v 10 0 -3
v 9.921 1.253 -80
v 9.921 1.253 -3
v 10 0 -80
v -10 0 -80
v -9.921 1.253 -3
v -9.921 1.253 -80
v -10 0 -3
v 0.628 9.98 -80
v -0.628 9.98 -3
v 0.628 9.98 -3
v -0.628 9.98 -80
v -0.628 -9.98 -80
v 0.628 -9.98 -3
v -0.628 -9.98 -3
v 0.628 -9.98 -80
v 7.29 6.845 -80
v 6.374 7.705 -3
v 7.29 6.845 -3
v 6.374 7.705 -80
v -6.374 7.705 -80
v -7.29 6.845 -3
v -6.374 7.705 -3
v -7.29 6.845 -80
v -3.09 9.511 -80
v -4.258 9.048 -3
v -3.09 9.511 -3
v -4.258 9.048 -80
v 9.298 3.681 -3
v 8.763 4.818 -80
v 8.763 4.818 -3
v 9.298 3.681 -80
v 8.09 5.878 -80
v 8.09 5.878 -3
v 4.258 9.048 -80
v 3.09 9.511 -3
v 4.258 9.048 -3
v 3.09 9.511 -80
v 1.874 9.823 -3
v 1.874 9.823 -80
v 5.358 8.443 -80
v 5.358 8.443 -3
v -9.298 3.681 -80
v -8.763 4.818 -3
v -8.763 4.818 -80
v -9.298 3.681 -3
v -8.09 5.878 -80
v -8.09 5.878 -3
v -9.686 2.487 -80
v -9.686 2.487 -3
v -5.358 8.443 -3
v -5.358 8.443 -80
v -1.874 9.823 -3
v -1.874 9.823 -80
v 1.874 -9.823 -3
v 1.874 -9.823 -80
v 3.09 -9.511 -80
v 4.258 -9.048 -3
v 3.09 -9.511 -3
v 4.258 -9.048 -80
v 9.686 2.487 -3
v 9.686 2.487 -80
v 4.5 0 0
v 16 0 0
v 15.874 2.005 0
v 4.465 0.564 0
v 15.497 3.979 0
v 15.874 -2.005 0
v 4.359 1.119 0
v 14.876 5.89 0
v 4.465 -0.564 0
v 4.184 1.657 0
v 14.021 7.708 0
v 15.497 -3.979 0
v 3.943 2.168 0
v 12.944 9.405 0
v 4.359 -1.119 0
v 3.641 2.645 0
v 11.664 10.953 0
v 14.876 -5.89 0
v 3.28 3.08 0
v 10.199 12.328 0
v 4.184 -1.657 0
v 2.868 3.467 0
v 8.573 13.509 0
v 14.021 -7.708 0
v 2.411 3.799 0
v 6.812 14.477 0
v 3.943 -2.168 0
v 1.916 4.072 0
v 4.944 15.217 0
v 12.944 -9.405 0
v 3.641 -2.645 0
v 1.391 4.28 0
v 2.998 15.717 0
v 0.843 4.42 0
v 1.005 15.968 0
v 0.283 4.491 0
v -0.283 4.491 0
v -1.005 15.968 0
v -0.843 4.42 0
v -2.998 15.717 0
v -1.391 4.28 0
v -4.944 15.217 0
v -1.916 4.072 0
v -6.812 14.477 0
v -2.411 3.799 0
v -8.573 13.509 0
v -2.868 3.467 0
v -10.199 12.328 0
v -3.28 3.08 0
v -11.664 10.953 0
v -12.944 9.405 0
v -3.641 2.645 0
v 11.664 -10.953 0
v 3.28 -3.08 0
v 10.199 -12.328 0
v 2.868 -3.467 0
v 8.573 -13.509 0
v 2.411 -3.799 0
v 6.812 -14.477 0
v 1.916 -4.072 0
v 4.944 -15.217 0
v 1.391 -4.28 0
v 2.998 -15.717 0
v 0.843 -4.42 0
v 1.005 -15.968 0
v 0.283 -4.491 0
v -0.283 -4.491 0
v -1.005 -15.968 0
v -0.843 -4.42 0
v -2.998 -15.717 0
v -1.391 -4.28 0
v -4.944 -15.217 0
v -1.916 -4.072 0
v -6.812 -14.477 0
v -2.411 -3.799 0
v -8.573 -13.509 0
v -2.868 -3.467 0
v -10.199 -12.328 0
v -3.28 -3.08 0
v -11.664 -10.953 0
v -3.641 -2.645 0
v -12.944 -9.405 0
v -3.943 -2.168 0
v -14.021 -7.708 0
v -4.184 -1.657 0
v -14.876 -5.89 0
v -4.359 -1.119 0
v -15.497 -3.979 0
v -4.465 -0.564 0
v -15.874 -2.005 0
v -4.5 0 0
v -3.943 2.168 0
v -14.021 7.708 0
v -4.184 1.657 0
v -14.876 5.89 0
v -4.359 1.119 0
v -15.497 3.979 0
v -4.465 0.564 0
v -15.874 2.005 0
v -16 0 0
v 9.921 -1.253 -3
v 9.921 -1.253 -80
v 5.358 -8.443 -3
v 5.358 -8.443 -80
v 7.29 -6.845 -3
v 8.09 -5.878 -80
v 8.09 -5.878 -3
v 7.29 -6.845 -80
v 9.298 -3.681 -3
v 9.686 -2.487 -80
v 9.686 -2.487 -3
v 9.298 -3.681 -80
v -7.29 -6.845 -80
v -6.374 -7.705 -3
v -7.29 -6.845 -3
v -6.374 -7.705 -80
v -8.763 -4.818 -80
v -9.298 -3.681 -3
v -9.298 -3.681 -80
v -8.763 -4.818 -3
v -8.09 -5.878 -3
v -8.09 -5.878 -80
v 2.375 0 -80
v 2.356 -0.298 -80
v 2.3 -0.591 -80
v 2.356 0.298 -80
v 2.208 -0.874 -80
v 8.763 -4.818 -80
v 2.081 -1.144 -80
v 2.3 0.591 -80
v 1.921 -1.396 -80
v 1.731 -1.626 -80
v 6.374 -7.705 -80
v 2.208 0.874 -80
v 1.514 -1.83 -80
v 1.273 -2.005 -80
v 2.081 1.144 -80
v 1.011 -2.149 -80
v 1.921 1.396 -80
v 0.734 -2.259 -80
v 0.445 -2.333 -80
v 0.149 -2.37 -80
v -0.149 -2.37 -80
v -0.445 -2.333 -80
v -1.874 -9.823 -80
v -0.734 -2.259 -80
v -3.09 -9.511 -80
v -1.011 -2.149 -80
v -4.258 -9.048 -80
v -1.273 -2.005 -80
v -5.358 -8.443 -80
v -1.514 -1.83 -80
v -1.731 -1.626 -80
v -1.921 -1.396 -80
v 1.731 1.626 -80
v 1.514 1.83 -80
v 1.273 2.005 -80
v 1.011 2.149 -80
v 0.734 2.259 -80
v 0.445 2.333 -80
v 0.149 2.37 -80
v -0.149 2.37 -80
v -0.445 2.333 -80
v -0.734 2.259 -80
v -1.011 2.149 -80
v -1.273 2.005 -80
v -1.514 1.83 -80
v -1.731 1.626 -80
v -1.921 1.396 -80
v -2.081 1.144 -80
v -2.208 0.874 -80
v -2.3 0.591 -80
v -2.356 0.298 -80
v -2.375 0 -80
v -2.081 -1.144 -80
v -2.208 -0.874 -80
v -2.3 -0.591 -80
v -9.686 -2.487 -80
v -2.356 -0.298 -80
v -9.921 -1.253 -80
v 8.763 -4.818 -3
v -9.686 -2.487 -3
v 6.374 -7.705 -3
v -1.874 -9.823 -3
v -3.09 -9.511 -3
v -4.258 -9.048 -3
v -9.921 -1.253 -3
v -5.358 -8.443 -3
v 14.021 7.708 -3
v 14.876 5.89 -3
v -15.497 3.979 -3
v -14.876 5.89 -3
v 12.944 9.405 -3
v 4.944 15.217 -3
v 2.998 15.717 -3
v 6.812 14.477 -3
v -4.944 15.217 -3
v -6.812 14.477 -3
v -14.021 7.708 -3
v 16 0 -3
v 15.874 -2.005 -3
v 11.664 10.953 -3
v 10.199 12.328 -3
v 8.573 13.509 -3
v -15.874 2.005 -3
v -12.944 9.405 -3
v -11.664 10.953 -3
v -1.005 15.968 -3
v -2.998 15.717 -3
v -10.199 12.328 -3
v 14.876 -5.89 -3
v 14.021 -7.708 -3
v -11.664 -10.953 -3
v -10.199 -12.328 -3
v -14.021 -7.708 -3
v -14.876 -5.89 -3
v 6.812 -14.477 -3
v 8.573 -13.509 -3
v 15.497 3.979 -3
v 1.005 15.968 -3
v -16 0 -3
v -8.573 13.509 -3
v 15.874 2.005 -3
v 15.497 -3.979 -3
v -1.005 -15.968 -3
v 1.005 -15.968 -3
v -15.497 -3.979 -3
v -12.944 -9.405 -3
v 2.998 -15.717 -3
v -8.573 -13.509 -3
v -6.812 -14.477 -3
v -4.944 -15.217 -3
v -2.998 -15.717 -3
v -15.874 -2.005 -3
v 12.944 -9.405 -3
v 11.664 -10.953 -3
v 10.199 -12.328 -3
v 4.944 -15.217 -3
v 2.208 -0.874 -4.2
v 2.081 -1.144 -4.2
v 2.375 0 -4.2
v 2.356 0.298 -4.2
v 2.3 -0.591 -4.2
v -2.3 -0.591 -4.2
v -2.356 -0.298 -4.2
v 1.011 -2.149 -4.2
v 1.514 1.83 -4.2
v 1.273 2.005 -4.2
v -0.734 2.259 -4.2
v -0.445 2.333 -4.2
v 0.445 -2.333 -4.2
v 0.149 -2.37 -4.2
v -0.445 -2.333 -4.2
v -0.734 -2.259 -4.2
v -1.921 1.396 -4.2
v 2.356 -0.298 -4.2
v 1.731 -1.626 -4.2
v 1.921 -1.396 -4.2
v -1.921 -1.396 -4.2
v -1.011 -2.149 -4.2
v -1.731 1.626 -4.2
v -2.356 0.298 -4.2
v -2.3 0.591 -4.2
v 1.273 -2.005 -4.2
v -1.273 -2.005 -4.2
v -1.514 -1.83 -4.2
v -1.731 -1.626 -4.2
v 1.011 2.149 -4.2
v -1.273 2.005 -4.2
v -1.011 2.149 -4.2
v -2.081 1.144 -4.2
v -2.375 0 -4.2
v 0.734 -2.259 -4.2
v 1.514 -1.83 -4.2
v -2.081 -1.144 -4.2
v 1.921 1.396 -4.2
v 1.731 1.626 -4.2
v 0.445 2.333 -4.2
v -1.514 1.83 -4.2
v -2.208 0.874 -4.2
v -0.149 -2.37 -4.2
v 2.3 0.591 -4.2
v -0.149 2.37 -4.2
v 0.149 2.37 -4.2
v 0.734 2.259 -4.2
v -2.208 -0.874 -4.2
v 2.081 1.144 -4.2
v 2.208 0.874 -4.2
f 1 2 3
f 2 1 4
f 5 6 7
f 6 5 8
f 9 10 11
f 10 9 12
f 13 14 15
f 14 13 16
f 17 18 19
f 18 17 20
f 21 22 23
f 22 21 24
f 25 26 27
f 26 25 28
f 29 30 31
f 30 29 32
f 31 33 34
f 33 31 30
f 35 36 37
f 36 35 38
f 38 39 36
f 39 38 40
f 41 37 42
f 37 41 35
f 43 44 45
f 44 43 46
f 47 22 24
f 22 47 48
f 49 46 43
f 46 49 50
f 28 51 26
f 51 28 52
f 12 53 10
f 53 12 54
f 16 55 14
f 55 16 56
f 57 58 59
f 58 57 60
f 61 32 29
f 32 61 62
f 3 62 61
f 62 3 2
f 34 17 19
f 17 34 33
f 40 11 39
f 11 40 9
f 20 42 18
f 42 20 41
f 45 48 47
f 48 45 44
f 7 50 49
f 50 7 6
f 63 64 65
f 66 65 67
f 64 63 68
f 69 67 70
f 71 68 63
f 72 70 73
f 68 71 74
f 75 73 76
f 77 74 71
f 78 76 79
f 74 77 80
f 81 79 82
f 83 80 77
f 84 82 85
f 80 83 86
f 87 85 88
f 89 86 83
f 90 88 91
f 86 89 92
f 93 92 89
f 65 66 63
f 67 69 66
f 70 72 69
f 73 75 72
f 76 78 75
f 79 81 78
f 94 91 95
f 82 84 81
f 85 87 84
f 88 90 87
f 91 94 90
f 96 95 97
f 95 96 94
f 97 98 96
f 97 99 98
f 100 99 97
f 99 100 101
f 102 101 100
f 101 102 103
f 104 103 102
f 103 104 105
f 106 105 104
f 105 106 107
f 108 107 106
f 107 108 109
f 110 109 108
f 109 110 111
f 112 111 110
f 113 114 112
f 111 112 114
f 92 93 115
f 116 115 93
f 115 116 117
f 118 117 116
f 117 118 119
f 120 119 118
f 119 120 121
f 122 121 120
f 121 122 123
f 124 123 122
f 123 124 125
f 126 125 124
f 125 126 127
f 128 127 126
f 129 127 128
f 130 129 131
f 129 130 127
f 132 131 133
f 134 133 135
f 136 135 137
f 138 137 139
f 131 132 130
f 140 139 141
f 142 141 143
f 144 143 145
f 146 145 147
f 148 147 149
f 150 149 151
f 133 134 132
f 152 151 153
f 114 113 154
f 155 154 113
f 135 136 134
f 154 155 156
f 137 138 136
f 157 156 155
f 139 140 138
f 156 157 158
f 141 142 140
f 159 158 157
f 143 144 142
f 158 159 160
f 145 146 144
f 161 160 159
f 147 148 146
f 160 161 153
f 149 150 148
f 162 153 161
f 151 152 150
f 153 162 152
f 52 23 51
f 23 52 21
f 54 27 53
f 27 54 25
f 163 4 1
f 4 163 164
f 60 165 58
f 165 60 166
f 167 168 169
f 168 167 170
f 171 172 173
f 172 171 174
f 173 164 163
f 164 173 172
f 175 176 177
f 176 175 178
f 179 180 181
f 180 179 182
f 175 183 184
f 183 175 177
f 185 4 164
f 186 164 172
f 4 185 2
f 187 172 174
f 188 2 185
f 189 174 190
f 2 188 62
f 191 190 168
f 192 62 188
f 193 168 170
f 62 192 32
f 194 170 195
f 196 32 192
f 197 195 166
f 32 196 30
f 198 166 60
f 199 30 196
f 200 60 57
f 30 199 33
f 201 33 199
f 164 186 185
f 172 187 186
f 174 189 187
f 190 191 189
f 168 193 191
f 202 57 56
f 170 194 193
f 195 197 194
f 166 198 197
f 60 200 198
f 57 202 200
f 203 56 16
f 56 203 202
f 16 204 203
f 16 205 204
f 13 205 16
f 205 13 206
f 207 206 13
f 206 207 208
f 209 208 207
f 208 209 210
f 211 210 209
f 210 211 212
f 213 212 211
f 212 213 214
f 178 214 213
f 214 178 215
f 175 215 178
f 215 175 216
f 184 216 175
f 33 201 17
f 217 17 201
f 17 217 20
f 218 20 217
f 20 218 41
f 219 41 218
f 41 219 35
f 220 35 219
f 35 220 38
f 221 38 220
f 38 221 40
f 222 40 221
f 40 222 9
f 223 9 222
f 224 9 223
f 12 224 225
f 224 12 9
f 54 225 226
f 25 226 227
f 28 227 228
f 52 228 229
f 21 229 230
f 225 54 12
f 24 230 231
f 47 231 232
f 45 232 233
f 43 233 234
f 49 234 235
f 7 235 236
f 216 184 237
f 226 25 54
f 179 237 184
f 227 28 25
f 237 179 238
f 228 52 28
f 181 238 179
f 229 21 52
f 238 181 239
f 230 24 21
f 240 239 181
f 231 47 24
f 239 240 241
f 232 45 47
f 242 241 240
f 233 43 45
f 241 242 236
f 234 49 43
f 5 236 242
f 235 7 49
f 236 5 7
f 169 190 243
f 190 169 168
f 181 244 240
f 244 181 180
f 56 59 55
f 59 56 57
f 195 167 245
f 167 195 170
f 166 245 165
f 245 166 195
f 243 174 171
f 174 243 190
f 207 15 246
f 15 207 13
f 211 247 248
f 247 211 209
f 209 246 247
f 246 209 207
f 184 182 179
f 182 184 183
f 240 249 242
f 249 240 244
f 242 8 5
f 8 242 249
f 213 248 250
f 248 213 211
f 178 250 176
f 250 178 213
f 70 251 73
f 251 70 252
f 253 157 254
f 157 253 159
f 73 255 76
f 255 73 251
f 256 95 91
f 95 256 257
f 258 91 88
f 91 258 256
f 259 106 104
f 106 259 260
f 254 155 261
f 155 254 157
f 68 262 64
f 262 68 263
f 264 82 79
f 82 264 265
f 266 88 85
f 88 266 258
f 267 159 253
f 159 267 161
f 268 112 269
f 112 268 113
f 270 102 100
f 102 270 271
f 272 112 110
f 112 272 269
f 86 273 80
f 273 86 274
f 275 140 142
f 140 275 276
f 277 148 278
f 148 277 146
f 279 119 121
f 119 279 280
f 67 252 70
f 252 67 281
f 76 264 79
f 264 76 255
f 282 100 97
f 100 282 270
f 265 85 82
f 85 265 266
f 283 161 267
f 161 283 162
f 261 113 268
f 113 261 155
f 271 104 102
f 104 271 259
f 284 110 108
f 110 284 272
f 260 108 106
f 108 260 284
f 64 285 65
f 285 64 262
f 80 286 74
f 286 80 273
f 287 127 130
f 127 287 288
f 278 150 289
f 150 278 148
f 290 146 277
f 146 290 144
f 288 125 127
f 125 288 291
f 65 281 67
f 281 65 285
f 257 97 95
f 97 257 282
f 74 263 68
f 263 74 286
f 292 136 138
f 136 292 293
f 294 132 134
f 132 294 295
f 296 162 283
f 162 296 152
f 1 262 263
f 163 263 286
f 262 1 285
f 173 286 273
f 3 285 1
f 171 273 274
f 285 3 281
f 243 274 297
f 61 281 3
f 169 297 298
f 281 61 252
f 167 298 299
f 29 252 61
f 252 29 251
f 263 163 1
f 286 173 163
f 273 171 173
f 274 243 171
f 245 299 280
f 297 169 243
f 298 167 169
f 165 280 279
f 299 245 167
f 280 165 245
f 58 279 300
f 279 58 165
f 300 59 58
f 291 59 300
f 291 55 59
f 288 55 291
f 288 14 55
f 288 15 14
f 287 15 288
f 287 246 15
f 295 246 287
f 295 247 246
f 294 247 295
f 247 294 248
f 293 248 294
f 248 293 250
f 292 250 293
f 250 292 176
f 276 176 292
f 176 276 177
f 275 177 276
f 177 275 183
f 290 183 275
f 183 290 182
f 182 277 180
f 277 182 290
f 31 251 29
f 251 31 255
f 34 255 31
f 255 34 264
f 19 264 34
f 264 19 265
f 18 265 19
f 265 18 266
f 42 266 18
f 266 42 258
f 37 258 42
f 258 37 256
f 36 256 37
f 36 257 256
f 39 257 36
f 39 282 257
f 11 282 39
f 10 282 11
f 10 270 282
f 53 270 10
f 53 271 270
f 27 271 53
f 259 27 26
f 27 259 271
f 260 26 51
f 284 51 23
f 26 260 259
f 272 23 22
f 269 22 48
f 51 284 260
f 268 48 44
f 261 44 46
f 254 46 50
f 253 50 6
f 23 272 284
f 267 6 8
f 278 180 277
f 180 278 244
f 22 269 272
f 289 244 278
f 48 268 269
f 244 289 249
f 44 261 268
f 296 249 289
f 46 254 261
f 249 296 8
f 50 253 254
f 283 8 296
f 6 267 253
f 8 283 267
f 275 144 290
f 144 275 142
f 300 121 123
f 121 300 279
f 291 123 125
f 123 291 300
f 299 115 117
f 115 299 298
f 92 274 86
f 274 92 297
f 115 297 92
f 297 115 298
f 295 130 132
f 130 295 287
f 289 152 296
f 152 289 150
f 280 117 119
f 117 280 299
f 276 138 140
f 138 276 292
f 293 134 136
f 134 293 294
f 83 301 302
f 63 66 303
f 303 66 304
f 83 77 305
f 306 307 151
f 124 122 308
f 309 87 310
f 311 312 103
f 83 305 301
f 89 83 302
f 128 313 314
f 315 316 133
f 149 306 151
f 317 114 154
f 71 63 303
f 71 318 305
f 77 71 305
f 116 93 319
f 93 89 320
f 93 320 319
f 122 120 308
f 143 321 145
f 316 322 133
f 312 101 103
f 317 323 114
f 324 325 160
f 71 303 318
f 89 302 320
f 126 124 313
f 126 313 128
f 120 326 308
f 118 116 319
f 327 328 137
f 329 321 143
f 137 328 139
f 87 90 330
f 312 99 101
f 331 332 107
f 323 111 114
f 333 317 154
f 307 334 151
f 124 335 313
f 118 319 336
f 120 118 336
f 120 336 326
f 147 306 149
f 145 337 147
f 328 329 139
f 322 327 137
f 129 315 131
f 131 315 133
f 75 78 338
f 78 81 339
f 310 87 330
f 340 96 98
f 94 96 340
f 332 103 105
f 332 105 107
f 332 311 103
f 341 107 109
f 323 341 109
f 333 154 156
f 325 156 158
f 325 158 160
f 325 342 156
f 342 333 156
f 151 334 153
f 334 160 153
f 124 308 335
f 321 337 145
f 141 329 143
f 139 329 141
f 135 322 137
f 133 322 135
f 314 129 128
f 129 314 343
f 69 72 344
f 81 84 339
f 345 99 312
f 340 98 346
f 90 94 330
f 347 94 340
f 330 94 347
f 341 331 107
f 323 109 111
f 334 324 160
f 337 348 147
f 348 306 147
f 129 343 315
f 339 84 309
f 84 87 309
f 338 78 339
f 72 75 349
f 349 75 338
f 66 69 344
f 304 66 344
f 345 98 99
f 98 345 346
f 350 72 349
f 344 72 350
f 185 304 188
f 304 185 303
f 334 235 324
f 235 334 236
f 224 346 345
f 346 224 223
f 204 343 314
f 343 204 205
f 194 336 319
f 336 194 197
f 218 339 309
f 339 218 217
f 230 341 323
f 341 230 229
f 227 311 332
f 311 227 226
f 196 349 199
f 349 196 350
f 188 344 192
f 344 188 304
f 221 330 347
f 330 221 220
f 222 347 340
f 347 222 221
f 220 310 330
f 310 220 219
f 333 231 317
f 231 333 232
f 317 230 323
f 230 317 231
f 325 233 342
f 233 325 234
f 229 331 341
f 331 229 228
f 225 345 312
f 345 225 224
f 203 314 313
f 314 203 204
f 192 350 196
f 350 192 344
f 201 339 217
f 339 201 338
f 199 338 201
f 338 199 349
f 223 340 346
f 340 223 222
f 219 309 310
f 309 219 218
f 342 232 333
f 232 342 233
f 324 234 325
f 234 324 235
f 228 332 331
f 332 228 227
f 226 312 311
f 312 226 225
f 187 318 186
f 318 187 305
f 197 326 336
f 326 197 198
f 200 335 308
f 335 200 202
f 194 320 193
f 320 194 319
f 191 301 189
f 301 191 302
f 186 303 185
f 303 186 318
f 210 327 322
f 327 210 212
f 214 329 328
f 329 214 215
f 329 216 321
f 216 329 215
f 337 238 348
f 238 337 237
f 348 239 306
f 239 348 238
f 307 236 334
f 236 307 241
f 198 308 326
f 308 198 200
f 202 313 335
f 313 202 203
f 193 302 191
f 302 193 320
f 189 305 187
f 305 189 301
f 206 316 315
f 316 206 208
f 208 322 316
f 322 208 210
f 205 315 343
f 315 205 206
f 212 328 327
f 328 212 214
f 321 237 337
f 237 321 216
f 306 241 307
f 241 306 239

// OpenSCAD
$fn = 50;


difference() {
	union() {
		translate(v = [0, 0, -80.0000000000]) {
			cylinder(h = 80, r = 10.0000000000);
		}
		translate(v = [0, 0, -3.0000000000]) {
			cylinder(h = 3, r = 16.0000000000);
		}
	}
	union() {
		translate(v = [0, 0, 0]) {
			rotate(a = [0, 0, 0]) {
				difference() {
					union() {
						#translate(v = [0, 0, -80.0000000000]) {
							cylinder(h = 80, r = 2.2500000000);
						}
						#translate(v = [0, 0, -4.2000000000]) {
							cylinder(h = 4.2000000000, r = 10.0000000000, r1 = 2.3750000000, r2 = 4.5000000000);
						}
						#translate(v = [0, 0, -80.0000000000]) {
							cylinder(h = 80, r = 2.3750000000);
						}
						#translate(v = [0, 0, -80.0000000000]) {
							cylinder(h = 80, r = 2.2500000000);
						}
					}
					union();
				}
			}
		}
	}
}
